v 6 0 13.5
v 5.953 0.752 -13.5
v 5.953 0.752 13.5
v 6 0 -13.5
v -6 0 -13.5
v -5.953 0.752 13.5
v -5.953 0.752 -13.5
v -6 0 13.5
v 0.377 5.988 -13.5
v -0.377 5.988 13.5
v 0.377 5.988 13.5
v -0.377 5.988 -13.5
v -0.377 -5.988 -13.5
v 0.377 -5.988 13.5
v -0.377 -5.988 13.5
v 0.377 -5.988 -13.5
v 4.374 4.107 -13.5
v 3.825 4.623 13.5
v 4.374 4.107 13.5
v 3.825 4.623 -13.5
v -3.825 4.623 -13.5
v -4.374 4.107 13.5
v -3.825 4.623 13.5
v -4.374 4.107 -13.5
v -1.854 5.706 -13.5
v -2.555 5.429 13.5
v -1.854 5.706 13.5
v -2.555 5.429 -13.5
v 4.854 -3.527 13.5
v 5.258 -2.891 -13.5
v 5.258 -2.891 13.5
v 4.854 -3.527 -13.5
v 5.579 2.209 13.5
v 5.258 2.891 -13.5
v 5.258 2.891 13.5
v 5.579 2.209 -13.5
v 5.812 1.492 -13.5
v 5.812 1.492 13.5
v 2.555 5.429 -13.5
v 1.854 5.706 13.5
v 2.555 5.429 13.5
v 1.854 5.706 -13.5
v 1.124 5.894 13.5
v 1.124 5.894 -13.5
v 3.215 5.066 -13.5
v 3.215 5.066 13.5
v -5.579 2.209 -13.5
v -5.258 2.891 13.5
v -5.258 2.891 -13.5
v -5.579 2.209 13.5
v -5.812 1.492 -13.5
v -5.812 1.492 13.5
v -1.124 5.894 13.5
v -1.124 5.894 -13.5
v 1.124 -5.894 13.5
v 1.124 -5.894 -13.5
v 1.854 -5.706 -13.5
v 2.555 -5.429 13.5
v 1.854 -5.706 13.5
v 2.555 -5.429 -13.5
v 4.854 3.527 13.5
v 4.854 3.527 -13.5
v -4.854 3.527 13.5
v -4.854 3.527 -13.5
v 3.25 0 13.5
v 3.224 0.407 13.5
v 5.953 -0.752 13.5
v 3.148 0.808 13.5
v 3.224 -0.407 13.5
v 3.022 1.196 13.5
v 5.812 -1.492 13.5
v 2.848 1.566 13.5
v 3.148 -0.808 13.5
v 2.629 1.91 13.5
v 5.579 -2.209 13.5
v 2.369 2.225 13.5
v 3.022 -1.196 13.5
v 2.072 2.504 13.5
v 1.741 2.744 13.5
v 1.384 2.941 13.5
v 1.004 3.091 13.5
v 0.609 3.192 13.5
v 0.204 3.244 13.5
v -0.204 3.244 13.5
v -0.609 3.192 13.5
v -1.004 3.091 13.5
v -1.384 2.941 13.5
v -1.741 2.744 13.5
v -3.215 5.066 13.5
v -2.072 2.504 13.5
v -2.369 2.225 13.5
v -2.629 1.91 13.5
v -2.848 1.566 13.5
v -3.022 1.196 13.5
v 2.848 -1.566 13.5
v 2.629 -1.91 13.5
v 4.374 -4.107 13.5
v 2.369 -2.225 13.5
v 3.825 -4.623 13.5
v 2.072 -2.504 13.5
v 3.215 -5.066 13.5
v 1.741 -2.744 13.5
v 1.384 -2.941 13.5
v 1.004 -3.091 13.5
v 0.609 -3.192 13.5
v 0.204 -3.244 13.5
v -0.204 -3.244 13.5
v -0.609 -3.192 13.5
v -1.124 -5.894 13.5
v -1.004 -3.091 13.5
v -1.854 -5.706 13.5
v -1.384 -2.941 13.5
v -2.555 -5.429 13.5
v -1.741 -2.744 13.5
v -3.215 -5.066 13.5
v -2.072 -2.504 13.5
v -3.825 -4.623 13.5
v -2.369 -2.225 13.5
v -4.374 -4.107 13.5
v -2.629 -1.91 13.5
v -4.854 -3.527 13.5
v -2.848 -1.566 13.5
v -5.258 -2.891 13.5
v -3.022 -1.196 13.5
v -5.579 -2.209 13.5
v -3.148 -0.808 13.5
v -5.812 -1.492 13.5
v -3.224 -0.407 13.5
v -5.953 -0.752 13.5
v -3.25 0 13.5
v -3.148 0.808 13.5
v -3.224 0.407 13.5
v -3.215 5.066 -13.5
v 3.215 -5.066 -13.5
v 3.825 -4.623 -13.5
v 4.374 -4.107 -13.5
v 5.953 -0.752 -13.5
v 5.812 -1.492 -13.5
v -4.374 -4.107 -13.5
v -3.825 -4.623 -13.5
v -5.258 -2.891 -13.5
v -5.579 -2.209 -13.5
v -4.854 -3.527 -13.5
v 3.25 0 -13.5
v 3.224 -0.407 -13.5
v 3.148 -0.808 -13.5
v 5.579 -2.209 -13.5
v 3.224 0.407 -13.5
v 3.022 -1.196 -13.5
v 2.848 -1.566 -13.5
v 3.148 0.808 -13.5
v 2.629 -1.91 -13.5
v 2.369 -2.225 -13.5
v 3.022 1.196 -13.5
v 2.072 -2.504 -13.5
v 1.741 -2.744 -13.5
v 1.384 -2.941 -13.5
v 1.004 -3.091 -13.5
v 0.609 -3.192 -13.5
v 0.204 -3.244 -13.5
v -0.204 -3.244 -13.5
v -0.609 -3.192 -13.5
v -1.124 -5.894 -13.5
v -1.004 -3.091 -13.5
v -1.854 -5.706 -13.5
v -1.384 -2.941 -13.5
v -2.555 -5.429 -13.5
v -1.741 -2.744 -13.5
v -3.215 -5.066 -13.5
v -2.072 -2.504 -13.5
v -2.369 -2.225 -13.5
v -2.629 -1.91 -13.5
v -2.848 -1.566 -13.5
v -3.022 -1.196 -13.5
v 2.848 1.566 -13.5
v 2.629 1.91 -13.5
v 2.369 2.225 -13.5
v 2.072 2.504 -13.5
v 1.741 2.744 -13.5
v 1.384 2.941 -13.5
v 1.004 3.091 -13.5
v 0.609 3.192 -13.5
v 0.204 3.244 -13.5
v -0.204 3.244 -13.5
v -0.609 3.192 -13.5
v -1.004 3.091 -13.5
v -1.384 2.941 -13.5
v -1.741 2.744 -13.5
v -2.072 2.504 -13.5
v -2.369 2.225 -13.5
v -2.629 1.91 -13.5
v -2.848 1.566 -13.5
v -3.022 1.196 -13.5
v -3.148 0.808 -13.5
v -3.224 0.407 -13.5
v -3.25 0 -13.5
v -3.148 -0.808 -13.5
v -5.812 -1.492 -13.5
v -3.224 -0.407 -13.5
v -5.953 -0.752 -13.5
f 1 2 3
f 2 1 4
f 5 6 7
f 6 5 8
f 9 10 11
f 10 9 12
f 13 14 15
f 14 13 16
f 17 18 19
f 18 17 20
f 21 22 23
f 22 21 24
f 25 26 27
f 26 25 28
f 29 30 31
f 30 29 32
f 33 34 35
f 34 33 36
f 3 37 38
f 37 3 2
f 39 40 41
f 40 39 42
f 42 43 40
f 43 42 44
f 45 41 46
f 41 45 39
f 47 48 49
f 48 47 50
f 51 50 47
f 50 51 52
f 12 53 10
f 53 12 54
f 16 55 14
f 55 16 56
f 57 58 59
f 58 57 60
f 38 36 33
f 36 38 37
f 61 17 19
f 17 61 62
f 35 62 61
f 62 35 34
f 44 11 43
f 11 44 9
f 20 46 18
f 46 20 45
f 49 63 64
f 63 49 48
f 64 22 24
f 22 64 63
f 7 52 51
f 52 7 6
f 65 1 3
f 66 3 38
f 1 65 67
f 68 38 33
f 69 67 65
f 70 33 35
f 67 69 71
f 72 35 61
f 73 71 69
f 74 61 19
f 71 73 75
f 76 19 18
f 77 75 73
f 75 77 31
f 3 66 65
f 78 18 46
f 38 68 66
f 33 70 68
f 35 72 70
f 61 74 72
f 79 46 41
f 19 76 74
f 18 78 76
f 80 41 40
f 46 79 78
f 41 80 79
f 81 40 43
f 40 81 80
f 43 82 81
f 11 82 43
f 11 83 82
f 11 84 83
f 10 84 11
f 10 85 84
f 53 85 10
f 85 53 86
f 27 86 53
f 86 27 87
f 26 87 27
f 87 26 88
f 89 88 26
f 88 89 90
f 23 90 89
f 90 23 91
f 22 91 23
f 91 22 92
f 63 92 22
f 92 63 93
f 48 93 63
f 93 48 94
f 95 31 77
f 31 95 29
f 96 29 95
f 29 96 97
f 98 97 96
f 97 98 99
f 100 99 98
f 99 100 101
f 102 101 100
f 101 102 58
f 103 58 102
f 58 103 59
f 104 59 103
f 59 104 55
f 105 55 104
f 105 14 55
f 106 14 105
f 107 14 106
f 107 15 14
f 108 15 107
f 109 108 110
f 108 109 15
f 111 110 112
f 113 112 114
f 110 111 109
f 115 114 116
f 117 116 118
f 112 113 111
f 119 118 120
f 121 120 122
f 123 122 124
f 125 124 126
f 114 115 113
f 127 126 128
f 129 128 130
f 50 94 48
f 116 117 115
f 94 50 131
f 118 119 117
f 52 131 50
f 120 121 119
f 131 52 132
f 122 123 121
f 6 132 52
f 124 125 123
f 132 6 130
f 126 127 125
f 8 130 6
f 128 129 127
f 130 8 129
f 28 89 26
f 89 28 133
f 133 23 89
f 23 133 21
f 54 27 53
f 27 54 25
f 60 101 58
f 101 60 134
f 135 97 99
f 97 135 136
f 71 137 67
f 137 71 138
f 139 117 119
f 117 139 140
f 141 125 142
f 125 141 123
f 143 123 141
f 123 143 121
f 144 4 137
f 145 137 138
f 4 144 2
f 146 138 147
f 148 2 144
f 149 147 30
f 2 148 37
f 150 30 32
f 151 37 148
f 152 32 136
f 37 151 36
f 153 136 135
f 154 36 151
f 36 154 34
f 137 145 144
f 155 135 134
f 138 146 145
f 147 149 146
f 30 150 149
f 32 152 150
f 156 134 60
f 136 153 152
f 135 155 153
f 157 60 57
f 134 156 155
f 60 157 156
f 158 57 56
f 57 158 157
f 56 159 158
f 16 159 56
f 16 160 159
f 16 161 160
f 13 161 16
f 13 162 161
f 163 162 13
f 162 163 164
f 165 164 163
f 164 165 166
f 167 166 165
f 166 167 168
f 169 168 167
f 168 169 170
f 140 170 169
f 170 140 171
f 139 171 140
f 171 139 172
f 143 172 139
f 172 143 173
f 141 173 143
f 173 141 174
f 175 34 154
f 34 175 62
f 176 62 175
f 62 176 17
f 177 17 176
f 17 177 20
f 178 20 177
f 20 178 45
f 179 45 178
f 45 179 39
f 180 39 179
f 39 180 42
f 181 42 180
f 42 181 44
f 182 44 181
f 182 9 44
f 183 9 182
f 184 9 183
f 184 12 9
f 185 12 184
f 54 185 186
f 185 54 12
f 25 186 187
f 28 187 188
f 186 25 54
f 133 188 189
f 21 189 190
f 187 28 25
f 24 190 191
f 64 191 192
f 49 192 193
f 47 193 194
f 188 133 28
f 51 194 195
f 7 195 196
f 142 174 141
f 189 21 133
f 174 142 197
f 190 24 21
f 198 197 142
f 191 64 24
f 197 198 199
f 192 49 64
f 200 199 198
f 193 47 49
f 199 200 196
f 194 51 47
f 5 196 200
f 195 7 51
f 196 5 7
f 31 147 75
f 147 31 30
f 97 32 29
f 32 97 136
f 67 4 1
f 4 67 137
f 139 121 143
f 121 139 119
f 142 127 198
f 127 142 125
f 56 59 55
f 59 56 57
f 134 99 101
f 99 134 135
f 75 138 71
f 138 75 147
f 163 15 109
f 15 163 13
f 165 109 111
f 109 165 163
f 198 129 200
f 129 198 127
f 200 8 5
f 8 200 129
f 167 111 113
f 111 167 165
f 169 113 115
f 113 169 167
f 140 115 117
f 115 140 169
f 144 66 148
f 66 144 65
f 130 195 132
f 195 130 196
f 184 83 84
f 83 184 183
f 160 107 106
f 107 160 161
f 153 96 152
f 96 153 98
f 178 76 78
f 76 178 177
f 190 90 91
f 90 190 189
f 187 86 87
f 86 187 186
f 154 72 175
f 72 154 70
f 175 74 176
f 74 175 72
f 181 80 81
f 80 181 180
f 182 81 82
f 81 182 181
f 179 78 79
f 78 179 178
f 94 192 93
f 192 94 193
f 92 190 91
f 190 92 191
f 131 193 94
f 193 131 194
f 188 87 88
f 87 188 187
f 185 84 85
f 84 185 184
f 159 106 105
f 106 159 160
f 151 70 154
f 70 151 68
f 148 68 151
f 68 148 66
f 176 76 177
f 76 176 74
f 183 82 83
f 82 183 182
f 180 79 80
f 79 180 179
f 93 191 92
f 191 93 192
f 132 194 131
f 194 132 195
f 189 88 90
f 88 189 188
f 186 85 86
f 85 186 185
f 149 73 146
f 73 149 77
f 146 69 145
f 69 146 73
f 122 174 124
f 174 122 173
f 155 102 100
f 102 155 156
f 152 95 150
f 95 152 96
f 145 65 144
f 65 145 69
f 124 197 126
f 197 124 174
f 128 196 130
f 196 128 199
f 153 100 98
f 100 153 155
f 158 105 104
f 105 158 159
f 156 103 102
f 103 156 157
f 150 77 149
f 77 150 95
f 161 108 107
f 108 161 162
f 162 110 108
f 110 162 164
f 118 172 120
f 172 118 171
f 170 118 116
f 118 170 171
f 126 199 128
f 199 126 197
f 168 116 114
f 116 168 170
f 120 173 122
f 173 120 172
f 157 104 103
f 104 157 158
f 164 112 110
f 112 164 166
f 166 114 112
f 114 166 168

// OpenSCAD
$fn = 50;


difference() {
	union() {
		translate(v = [0, 0, -13.5000000000]) {
			cylinder(h = 27, r = 6.0000000000);
		}
	}
	union() {
		translate(v = [0, 0, -100.0000000000]) {
			cylinder(h = 200, r = 3.2500000000);
		}
	}
}
